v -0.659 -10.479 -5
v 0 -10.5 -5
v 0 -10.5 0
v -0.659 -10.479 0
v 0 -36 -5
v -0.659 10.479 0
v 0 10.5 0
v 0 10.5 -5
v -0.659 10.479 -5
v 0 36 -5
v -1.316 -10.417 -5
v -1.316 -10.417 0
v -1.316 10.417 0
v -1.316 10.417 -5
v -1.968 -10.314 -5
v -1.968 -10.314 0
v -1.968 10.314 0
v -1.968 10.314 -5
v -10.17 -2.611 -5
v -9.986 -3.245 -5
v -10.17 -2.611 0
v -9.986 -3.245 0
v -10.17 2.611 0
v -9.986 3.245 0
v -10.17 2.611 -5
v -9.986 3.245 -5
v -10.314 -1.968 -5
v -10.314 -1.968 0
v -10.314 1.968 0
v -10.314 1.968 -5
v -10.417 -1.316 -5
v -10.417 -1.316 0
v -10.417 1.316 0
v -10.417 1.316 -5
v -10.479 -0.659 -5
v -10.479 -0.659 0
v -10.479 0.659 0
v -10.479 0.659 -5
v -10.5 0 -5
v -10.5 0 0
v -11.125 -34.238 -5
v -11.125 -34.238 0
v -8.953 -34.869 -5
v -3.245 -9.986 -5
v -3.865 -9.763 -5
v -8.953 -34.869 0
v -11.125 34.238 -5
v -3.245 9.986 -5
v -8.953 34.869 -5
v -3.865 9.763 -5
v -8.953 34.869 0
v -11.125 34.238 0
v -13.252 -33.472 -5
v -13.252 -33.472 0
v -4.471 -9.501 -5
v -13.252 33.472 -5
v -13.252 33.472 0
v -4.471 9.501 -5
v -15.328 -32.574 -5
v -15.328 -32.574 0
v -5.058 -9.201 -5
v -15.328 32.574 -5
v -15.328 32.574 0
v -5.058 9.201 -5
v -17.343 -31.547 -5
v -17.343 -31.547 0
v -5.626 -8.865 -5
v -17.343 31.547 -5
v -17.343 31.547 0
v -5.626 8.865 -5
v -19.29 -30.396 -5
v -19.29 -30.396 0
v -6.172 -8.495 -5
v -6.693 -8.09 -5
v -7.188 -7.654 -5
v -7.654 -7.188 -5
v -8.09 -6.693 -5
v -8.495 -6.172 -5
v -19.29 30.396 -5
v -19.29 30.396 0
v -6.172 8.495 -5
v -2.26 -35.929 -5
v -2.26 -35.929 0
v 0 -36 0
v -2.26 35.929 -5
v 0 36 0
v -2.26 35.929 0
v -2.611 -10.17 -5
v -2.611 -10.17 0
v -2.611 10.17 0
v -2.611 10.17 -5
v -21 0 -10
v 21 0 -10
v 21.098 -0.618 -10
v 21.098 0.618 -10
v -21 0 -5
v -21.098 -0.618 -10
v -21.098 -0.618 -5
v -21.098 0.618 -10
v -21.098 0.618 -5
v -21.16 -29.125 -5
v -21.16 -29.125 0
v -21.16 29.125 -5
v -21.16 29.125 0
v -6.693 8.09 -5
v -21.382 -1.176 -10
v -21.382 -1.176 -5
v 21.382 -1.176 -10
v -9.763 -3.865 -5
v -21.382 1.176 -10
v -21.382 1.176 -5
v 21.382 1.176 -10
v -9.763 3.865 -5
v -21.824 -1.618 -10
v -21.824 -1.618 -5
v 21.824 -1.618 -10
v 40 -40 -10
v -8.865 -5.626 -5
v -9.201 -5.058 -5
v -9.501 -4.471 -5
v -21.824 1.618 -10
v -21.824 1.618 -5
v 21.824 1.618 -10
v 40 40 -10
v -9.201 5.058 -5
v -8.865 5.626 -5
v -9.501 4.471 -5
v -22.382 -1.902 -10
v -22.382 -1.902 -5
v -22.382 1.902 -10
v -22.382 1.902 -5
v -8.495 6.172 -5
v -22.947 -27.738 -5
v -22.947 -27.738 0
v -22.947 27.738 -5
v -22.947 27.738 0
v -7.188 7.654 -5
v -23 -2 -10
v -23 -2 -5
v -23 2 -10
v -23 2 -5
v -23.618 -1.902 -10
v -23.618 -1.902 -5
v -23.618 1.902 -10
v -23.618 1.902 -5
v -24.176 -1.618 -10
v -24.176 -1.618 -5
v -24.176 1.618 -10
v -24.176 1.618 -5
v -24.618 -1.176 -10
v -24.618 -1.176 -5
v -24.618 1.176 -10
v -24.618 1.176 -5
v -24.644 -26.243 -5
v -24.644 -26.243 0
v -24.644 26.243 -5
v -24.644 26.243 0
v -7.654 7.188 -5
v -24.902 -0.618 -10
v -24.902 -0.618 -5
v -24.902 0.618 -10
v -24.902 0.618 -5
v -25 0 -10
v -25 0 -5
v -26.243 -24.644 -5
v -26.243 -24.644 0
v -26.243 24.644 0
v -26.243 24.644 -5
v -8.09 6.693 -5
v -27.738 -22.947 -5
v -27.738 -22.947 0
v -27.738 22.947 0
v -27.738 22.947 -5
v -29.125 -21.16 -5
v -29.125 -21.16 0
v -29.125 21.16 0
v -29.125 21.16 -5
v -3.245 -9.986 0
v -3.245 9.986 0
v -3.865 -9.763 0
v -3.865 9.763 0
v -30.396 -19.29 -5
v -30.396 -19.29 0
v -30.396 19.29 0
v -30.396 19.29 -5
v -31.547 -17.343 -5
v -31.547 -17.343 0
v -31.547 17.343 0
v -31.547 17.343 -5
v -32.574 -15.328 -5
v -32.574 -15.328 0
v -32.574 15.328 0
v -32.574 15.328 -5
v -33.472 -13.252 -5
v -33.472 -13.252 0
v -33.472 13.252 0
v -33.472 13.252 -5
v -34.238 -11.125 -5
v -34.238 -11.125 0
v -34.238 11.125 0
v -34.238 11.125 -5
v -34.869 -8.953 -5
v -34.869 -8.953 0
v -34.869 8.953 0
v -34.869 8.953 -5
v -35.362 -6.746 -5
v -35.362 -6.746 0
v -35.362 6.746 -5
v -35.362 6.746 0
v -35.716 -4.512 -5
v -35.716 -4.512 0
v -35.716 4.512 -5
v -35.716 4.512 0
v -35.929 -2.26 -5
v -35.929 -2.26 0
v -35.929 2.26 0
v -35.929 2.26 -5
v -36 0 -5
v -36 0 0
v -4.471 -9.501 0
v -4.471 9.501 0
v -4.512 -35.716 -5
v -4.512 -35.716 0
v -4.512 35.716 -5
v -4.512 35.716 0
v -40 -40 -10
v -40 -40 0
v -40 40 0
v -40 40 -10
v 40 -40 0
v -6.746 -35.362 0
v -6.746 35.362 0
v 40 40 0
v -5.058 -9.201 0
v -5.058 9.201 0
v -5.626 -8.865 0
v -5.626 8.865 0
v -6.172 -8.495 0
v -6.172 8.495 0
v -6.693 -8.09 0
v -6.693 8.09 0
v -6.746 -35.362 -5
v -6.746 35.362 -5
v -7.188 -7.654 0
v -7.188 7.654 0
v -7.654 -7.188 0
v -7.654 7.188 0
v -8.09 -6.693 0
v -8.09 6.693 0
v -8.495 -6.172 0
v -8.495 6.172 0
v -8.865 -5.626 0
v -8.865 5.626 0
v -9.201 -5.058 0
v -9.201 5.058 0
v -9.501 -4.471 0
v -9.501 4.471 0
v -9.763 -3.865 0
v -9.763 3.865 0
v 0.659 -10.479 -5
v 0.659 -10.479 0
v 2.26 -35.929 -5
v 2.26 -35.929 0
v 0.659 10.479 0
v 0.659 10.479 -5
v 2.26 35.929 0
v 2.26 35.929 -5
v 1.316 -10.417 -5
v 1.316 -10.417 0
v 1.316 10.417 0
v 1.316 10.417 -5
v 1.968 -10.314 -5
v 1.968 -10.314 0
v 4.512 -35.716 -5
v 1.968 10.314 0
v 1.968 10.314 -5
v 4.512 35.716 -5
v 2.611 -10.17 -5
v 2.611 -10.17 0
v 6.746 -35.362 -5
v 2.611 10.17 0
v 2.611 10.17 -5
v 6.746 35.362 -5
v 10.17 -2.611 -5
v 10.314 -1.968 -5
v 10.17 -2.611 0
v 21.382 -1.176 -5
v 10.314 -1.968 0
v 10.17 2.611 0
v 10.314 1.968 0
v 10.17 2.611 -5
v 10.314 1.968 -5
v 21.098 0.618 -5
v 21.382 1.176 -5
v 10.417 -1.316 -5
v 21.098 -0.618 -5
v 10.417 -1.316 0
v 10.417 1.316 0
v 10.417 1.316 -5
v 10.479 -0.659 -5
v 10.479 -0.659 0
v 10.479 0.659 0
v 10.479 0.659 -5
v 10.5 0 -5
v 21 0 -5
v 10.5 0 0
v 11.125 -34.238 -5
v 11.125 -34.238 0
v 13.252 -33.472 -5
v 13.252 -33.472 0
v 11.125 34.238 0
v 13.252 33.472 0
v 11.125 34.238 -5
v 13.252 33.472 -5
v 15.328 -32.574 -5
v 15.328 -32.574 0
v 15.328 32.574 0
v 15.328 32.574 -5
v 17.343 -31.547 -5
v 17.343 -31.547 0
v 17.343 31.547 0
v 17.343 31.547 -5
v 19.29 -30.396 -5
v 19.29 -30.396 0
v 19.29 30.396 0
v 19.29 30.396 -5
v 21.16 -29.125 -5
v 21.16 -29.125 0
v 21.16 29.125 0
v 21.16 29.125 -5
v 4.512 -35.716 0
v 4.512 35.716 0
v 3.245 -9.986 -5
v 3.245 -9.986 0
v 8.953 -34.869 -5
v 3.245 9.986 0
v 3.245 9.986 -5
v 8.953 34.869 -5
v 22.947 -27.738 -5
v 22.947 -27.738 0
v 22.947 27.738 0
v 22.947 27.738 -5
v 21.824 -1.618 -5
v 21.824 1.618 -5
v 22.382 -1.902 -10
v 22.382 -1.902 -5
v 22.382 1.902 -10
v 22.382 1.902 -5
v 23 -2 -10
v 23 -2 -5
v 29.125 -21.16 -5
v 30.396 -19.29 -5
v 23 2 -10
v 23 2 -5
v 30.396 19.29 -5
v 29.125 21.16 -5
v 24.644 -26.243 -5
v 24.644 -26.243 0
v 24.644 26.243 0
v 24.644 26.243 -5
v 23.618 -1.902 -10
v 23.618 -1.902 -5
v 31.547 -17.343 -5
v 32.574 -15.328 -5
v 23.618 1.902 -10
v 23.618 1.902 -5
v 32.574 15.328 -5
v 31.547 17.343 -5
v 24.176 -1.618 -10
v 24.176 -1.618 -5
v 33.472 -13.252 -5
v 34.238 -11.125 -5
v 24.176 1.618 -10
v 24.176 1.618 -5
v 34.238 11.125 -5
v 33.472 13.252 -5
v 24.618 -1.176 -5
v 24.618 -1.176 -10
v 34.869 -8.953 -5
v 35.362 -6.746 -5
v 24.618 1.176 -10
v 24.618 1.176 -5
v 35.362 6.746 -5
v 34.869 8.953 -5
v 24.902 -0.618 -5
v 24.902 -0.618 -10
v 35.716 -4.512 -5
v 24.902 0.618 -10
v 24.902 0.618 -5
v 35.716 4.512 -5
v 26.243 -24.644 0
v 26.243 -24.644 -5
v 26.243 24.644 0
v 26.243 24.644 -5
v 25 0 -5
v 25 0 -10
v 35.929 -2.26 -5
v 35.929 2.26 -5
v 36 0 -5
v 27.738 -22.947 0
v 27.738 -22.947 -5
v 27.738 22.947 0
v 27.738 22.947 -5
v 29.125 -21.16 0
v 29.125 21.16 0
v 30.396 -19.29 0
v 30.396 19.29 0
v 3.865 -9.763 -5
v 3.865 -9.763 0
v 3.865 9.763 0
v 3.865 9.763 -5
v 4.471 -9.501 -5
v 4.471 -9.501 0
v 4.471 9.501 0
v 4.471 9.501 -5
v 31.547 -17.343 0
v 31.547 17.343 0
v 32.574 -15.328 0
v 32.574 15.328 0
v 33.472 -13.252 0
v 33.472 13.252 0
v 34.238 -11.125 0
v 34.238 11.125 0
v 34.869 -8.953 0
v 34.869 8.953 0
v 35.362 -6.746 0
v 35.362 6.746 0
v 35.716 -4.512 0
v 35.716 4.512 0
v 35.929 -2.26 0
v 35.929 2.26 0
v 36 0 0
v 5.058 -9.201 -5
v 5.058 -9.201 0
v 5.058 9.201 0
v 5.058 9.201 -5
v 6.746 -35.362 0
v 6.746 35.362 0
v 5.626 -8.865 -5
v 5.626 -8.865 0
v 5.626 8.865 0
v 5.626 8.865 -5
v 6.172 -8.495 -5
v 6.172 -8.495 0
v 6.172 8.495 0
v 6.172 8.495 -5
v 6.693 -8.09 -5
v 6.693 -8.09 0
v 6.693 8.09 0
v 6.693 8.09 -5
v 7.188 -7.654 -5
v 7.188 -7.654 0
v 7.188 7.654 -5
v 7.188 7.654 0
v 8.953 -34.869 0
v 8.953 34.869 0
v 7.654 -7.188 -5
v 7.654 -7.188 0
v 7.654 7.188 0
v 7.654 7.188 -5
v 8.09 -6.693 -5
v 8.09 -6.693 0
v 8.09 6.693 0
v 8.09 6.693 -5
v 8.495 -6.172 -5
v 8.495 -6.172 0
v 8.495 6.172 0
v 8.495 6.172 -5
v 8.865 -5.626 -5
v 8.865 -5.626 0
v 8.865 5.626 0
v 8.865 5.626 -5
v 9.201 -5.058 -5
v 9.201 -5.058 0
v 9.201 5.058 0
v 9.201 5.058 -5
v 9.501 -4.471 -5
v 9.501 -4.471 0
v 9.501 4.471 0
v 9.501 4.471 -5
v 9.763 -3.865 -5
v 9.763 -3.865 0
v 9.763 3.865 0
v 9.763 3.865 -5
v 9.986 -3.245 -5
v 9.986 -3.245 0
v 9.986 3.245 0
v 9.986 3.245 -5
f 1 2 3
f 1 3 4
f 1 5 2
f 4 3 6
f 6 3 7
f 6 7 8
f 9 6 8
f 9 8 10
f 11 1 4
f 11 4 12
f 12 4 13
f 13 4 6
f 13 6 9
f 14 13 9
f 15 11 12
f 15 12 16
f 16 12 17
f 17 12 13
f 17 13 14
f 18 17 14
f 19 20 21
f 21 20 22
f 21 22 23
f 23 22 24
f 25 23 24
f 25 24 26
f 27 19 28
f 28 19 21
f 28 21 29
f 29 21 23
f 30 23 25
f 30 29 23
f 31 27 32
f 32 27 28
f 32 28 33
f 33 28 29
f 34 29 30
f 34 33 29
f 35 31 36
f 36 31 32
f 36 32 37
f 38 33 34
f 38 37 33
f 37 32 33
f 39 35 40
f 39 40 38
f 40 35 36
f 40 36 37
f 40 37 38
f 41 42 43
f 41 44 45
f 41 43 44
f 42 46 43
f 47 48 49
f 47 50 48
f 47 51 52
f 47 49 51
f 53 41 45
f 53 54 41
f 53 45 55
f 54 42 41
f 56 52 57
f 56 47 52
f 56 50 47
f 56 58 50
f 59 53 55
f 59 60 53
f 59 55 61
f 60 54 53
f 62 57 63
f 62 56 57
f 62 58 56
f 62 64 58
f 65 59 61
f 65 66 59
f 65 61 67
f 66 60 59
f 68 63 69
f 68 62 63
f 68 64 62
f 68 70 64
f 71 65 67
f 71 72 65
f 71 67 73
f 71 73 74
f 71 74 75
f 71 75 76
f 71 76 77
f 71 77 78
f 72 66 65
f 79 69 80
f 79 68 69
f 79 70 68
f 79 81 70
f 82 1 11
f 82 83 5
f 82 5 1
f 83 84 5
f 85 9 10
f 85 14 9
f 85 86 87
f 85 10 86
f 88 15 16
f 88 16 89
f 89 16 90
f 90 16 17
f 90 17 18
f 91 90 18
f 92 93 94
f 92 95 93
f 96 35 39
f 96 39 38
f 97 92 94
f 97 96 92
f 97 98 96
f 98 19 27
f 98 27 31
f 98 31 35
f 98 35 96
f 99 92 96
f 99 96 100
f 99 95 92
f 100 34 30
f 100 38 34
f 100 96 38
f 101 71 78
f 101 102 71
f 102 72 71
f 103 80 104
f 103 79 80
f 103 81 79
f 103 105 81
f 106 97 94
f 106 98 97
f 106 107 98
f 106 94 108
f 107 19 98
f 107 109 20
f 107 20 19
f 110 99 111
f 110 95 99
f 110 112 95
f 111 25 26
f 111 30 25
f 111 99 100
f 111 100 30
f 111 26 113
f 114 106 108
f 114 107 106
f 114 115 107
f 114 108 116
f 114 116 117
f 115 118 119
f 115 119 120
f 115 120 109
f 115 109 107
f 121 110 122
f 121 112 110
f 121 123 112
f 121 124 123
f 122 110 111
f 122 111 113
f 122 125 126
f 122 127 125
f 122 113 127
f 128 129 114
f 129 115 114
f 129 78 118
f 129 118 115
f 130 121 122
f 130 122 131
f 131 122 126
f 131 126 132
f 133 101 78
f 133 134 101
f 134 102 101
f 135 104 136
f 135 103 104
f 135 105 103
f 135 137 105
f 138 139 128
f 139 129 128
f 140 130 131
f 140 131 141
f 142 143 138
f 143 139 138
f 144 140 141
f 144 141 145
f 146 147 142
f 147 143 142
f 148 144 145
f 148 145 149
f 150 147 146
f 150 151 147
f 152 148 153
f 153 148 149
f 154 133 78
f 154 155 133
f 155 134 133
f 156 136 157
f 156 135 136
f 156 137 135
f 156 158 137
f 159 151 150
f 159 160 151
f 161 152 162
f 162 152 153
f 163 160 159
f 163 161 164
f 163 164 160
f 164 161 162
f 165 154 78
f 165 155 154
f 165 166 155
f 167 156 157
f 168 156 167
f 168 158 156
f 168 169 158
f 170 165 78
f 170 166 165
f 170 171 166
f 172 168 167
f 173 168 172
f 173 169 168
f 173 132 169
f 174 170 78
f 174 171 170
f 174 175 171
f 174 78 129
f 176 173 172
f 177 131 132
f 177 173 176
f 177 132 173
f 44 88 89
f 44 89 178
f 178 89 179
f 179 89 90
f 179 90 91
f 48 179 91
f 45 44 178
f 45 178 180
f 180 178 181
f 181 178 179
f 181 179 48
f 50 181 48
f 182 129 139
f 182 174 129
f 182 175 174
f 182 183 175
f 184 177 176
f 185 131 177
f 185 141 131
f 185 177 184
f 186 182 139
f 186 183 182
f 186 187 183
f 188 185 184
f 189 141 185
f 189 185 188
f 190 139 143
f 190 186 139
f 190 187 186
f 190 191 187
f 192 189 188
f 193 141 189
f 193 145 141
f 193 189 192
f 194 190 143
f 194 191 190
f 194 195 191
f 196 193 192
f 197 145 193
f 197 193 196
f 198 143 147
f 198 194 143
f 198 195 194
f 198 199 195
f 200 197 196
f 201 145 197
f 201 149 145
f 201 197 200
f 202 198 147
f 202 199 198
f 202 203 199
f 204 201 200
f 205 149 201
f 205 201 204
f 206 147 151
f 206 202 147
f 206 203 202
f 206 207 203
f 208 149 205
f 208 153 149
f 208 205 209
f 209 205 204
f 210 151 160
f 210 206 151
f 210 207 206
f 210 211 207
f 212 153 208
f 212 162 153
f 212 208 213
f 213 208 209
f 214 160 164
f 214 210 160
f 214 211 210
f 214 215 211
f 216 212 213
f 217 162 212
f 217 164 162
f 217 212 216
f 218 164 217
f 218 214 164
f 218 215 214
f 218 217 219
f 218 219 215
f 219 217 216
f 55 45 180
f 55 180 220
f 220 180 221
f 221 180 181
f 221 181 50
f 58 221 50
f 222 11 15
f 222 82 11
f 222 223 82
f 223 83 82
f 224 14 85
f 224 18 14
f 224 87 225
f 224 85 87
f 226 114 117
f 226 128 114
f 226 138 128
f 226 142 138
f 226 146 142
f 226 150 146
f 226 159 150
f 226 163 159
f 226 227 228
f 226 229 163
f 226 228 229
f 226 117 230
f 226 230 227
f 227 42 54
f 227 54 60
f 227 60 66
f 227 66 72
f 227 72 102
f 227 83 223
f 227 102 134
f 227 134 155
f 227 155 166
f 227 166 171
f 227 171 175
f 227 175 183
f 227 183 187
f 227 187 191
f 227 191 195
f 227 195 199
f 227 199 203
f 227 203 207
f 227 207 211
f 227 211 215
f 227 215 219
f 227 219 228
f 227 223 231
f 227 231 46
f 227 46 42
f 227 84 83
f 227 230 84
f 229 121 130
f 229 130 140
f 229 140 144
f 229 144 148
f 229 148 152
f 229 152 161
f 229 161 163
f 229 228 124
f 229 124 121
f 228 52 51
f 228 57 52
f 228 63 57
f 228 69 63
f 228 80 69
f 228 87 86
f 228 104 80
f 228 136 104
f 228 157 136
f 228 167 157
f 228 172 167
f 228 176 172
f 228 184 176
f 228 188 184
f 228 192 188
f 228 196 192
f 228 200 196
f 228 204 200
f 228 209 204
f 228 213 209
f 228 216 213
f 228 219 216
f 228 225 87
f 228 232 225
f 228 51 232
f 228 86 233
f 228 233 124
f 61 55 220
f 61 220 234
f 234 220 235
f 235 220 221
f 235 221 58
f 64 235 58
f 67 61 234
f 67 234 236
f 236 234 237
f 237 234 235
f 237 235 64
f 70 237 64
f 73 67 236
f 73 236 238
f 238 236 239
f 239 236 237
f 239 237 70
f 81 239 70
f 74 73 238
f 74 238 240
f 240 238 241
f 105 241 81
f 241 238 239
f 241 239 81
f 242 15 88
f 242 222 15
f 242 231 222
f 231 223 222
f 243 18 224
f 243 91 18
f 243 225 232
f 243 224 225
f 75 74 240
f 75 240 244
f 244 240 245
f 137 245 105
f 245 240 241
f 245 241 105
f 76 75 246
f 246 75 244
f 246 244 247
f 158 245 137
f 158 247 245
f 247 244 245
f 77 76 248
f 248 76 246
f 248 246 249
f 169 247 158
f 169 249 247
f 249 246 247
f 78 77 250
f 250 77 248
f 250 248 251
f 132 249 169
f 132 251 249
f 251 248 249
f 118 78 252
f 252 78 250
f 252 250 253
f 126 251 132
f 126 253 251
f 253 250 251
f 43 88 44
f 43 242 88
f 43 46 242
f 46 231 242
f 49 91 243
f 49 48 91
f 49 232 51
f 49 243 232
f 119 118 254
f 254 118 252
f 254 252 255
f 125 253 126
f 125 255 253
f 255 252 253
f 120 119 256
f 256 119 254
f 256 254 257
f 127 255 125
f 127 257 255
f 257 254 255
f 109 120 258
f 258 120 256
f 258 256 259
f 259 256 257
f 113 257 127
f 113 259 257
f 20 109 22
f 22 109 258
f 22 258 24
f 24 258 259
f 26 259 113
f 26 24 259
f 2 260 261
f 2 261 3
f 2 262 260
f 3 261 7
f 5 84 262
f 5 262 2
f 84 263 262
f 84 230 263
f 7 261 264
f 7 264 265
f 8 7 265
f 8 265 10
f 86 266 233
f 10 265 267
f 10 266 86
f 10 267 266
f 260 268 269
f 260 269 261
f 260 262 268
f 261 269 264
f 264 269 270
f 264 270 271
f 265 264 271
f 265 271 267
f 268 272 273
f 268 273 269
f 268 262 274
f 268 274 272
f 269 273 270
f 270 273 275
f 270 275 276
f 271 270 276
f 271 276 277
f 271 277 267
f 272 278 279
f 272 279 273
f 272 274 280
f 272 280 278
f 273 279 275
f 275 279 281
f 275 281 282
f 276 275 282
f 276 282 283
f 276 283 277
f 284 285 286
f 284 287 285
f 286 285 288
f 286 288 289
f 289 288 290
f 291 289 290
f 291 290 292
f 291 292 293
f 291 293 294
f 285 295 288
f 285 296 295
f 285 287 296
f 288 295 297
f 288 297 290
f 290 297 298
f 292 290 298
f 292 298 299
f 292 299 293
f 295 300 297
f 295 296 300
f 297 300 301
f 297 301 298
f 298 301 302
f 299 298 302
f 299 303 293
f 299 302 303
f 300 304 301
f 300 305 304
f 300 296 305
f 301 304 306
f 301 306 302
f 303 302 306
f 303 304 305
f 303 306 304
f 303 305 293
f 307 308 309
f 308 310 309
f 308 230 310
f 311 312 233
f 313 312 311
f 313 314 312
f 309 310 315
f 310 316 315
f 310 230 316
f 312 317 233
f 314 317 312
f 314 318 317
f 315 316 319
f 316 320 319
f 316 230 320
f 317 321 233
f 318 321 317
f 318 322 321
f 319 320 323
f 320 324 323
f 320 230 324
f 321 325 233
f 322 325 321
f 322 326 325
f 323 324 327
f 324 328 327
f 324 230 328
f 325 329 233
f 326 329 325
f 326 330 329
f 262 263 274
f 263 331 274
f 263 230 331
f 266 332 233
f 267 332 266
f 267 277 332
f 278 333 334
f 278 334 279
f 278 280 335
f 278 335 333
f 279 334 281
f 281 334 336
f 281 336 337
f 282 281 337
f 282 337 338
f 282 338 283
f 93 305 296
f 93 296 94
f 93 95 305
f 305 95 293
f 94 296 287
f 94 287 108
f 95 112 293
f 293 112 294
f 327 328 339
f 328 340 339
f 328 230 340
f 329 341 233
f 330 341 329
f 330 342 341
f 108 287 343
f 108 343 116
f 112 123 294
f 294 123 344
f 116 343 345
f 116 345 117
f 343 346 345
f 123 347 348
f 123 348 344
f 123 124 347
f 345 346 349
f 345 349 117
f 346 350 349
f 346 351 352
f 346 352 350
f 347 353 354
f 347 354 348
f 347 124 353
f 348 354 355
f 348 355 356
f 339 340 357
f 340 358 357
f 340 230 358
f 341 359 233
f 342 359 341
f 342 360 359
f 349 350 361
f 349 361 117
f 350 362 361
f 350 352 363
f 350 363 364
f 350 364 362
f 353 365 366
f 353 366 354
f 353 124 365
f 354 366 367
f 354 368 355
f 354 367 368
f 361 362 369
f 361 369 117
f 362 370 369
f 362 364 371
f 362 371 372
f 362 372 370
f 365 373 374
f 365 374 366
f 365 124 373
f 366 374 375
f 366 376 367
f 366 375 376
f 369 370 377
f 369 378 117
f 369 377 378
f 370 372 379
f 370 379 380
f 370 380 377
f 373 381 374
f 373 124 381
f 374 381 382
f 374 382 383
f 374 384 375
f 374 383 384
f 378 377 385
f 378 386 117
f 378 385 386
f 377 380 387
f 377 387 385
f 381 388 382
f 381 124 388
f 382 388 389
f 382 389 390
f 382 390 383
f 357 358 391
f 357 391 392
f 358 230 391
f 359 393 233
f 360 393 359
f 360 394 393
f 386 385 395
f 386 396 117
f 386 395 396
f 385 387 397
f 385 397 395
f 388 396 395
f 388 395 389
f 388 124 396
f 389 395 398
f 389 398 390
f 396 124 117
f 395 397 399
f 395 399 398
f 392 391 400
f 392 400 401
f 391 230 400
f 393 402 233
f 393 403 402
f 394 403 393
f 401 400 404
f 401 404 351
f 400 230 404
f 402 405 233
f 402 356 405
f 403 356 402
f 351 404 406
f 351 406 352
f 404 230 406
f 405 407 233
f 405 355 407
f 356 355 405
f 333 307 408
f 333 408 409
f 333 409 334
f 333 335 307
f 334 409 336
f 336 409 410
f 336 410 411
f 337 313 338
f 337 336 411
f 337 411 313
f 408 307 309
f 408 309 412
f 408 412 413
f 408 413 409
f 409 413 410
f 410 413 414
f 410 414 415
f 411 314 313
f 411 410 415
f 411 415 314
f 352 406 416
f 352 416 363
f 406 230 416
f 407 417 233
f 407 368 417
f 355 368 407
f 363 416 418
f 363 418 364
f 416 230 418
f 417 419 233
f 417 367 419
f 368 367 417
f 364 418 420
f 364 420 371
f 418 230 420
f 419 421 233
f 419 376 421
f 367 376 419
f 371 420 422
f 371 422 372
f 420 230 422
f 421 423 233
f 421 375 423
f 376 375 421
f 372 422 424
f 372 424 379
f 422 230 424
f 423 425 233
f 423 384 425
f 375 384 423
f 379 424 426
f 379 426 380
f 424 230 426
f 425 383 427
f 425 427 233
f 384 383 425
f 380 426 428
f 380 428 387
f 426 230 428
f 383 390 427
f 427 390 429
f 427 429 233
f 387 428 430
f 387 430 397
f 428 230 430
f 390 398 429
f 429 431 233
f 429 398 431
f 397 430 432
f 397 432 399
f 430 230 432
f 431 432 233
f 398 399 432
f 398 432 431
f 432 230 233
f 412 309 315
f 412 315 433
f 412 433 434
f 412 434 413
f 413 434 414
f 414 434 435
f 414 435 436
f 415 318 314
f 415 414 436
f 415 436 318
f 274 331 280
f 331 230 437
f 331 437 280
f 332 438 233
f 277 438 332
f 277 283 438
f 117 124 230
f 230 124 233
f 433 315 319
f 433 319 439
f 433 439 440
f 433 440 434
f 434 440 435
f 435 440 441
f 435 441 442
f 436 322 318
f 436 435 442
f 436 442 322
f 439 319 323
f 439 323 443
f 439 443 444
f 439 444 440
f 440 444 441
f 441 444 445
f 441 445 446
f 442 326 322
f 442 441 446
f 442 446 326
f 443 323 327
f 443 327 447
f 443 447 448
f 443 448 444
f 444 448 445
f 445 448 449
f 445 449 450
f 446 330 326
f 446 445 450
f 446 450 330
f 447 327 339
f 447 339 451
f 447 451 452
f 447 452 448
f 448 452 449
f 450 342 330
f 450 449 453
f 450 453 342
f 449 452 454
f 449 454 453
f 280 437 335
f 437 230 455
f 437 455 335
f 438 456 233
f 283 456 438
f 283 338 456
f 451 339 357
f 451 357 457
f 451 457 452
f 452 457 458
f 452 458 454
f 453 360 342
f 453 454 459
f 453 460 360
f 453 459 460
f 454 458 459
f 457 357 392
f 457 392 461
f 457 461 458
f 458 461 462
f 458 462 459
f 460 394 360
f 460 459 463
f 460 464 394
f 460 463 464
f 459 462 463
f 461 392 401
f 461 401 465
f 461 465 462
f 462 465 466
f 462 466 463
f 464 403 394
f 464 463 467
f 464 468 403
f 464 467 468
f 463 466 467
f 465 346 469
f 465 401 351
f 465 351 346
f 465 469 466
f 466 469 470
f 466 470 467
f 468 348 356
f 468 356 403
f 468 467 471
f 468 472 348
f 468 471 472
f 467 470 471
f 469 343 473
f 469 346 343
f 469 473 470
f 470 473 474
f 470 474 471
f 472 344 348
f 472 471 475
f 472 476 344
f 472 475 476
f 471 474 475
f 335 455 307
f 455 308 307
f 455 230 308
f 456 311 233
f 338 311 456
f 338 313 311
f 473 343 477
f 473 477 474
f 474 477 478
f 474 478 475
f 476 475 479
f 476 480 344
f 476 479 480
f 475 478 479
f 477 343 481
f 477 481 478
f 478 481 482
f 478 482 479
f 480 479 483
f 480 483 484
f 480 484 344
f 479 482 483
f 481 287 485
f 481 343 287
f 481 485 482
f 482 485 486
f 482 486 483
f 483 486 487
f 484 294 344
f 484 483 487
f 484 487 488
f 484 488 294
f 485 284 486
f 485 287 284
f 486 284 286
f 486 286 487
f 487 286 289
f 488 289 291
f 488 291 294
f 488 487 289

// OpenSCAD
// file: ../../888_2005.scad
include <../parameters.scad>


g2_5_podlozka_d = 16;


module 888_2005(draft = true){
    radius=main_tube_outer_diameter/2;
    
    difference(){
        union(){
            translate([g2_0_part_space/2, -g2_5_width/2, 0])
                cube([g2_5_front_l-g2_0_part_space/2, g2_5_width, g2_5_height]);
        }
        
        // hlavni nosna tyc
        translate([0,0,-global_clearance/2])
            cylinder(r=radius, h=g2_5_height+global_clearance, $fn=draft?50:100);
        
        // diry pro spojeni s 888_2006
        
        for(i=[-1,1]){
            translate([0, i*g2_5_width/3, g2_5_height/2])
                rotate([0, 90, 0])
                    cylinder(h=g2_5_m3_length/2+5, d=M3_screw_diameter, $fn=draft?50:100);
            // tvar matice
            translate([g2_5_m3_length/2-5, i*g2_5_width/3, g2_5_height/2])
                rotate([0, 90, 0])
                    rotate([0,0,0])
                        cylinder(h=M3_nut_height+0.5, d=M3_nut_diameter, $fn=6);
            // kapsa
            translate([g2_5_m3_length/2-5, i*g2_5_width/3, g2_5_height/2])
                rotate([-i*90, 0, 0])
                    translate([0, -M3_nut_diameter/2,-2])
                        cube([M3_nut_height+0.5, M3_nut_diameter, 100]);

        }
        
        bolts = g2_0_vertical_bolts;
        for(i=[1:bolts]){
            translate([0, 0, i*g2_5_height/(bolts+1)])
                rotate([0, 90, 0])
                    cylinder(h=g2_5_m3_length/2+5, d=M3_screw_diameter, $fn=draft?50:100);
            // tvar matice
            translate([g2_5_m3_length/2-5, 0, i*g2_5_height/(bolts+1)])
                rotate([0, 90, 0])
                    rotate([0,0,0])
                        cylinder(h=100, d=M3_nut_diameter, $fn=6);
        }
        
        
        
        // diry na pridelani podlozky pro magnet
        translate([g2_5_front_l-g2_0_part_space/2-20, 42/2, g2_5_height/2])
            rotate([0, 90, 0])
                cylinder(d=M4_screw_diameter, h=25, $fn=draft?50:100);
        
        translate([g2_5_front_l-g2_0_part_space/2-20, -42/2, g2_5_height/2])
            rotate([0, 90, 0])
                cylinder(d=M4_screw_diameter, h=25, $fn=draft?50:100);
        
        translate([g2_5_front_l-g2_0_part_space/2-10, -42/2-M4_nut_diameter, g2_5_height/2-M4_nut_diameter/2])
            cube([M4_nut_height, 42+M4_nut_diameter*2, M4_nut_diameter]);
        
        
        // okomentuj pro kontrolu matic
         //translate([20,-100, 0]) cube(300);
        
        // dira pro osu do loziska
        translate([main_tube_outer_diameter+608_bearing_outer_diameter*1, g2_5_width/2, g2_5_height/2])
            rotate([90, 0, 0])
                cylinder(h=g2_5_width+1, d=M8_screw_diameter, $fn=draft?50:100);
        translate([main_tube_outer_diameter+608_bearing_outer_diameter*1, g2_5_width/2, g2_5_height/2])
            rotate([90, 0, 0])
                cylinder(h=5.5, d=15, $fn=draft?50:100);
        translate([main_tube_outer_diameter+608_bearing_outer_diameter*1, -g2_5_width/2+10, g2_5_height/2])
            rotate([90, 0, 0])
                cylinder(h=11, d=g2_5_podlozka_d, $fn=draft?50:100);
        // diry pro podlozku a hlavu licovaneho sroubu M8x70
        
        //dira pro dil s loziskem
        translate([main_tube_outer_diameter, -radius-g2_5_bearing_space/2, -global_clearance/2]) cube([608_bearing_outer_diameter*2+global_clearance, main_tube_outer_diameter+g2_5_bearing_space, g2_5_height+global_clearance]);
    }
}

module 888_2005_drill_helper(draft = true)
{
        difference(){
            translate([-40,-40,0])
                cube([80,80,10]);

            difference(){
                cylinder(h=5, d=72, $fn=draft?50:100);
                cylinder(h=5, d=21, $fn=draft?50:100);
            }
            translate([-46/2,0,0])
                cylinder(h=10, d=4, $fn=20);
            translate([46/2,0,0])
                cylinder(h=10, d=4, $fn=20);
        }
}
/*
translate([0,0,100])
    888_2005_drill_helper(draft = true);
*/
888_2005();
// main file
include <../../../parameters.scad>

use <../../888_2005.scad>

rotate([180,0,0])
    888_2005_drill_helper(draft = false);
